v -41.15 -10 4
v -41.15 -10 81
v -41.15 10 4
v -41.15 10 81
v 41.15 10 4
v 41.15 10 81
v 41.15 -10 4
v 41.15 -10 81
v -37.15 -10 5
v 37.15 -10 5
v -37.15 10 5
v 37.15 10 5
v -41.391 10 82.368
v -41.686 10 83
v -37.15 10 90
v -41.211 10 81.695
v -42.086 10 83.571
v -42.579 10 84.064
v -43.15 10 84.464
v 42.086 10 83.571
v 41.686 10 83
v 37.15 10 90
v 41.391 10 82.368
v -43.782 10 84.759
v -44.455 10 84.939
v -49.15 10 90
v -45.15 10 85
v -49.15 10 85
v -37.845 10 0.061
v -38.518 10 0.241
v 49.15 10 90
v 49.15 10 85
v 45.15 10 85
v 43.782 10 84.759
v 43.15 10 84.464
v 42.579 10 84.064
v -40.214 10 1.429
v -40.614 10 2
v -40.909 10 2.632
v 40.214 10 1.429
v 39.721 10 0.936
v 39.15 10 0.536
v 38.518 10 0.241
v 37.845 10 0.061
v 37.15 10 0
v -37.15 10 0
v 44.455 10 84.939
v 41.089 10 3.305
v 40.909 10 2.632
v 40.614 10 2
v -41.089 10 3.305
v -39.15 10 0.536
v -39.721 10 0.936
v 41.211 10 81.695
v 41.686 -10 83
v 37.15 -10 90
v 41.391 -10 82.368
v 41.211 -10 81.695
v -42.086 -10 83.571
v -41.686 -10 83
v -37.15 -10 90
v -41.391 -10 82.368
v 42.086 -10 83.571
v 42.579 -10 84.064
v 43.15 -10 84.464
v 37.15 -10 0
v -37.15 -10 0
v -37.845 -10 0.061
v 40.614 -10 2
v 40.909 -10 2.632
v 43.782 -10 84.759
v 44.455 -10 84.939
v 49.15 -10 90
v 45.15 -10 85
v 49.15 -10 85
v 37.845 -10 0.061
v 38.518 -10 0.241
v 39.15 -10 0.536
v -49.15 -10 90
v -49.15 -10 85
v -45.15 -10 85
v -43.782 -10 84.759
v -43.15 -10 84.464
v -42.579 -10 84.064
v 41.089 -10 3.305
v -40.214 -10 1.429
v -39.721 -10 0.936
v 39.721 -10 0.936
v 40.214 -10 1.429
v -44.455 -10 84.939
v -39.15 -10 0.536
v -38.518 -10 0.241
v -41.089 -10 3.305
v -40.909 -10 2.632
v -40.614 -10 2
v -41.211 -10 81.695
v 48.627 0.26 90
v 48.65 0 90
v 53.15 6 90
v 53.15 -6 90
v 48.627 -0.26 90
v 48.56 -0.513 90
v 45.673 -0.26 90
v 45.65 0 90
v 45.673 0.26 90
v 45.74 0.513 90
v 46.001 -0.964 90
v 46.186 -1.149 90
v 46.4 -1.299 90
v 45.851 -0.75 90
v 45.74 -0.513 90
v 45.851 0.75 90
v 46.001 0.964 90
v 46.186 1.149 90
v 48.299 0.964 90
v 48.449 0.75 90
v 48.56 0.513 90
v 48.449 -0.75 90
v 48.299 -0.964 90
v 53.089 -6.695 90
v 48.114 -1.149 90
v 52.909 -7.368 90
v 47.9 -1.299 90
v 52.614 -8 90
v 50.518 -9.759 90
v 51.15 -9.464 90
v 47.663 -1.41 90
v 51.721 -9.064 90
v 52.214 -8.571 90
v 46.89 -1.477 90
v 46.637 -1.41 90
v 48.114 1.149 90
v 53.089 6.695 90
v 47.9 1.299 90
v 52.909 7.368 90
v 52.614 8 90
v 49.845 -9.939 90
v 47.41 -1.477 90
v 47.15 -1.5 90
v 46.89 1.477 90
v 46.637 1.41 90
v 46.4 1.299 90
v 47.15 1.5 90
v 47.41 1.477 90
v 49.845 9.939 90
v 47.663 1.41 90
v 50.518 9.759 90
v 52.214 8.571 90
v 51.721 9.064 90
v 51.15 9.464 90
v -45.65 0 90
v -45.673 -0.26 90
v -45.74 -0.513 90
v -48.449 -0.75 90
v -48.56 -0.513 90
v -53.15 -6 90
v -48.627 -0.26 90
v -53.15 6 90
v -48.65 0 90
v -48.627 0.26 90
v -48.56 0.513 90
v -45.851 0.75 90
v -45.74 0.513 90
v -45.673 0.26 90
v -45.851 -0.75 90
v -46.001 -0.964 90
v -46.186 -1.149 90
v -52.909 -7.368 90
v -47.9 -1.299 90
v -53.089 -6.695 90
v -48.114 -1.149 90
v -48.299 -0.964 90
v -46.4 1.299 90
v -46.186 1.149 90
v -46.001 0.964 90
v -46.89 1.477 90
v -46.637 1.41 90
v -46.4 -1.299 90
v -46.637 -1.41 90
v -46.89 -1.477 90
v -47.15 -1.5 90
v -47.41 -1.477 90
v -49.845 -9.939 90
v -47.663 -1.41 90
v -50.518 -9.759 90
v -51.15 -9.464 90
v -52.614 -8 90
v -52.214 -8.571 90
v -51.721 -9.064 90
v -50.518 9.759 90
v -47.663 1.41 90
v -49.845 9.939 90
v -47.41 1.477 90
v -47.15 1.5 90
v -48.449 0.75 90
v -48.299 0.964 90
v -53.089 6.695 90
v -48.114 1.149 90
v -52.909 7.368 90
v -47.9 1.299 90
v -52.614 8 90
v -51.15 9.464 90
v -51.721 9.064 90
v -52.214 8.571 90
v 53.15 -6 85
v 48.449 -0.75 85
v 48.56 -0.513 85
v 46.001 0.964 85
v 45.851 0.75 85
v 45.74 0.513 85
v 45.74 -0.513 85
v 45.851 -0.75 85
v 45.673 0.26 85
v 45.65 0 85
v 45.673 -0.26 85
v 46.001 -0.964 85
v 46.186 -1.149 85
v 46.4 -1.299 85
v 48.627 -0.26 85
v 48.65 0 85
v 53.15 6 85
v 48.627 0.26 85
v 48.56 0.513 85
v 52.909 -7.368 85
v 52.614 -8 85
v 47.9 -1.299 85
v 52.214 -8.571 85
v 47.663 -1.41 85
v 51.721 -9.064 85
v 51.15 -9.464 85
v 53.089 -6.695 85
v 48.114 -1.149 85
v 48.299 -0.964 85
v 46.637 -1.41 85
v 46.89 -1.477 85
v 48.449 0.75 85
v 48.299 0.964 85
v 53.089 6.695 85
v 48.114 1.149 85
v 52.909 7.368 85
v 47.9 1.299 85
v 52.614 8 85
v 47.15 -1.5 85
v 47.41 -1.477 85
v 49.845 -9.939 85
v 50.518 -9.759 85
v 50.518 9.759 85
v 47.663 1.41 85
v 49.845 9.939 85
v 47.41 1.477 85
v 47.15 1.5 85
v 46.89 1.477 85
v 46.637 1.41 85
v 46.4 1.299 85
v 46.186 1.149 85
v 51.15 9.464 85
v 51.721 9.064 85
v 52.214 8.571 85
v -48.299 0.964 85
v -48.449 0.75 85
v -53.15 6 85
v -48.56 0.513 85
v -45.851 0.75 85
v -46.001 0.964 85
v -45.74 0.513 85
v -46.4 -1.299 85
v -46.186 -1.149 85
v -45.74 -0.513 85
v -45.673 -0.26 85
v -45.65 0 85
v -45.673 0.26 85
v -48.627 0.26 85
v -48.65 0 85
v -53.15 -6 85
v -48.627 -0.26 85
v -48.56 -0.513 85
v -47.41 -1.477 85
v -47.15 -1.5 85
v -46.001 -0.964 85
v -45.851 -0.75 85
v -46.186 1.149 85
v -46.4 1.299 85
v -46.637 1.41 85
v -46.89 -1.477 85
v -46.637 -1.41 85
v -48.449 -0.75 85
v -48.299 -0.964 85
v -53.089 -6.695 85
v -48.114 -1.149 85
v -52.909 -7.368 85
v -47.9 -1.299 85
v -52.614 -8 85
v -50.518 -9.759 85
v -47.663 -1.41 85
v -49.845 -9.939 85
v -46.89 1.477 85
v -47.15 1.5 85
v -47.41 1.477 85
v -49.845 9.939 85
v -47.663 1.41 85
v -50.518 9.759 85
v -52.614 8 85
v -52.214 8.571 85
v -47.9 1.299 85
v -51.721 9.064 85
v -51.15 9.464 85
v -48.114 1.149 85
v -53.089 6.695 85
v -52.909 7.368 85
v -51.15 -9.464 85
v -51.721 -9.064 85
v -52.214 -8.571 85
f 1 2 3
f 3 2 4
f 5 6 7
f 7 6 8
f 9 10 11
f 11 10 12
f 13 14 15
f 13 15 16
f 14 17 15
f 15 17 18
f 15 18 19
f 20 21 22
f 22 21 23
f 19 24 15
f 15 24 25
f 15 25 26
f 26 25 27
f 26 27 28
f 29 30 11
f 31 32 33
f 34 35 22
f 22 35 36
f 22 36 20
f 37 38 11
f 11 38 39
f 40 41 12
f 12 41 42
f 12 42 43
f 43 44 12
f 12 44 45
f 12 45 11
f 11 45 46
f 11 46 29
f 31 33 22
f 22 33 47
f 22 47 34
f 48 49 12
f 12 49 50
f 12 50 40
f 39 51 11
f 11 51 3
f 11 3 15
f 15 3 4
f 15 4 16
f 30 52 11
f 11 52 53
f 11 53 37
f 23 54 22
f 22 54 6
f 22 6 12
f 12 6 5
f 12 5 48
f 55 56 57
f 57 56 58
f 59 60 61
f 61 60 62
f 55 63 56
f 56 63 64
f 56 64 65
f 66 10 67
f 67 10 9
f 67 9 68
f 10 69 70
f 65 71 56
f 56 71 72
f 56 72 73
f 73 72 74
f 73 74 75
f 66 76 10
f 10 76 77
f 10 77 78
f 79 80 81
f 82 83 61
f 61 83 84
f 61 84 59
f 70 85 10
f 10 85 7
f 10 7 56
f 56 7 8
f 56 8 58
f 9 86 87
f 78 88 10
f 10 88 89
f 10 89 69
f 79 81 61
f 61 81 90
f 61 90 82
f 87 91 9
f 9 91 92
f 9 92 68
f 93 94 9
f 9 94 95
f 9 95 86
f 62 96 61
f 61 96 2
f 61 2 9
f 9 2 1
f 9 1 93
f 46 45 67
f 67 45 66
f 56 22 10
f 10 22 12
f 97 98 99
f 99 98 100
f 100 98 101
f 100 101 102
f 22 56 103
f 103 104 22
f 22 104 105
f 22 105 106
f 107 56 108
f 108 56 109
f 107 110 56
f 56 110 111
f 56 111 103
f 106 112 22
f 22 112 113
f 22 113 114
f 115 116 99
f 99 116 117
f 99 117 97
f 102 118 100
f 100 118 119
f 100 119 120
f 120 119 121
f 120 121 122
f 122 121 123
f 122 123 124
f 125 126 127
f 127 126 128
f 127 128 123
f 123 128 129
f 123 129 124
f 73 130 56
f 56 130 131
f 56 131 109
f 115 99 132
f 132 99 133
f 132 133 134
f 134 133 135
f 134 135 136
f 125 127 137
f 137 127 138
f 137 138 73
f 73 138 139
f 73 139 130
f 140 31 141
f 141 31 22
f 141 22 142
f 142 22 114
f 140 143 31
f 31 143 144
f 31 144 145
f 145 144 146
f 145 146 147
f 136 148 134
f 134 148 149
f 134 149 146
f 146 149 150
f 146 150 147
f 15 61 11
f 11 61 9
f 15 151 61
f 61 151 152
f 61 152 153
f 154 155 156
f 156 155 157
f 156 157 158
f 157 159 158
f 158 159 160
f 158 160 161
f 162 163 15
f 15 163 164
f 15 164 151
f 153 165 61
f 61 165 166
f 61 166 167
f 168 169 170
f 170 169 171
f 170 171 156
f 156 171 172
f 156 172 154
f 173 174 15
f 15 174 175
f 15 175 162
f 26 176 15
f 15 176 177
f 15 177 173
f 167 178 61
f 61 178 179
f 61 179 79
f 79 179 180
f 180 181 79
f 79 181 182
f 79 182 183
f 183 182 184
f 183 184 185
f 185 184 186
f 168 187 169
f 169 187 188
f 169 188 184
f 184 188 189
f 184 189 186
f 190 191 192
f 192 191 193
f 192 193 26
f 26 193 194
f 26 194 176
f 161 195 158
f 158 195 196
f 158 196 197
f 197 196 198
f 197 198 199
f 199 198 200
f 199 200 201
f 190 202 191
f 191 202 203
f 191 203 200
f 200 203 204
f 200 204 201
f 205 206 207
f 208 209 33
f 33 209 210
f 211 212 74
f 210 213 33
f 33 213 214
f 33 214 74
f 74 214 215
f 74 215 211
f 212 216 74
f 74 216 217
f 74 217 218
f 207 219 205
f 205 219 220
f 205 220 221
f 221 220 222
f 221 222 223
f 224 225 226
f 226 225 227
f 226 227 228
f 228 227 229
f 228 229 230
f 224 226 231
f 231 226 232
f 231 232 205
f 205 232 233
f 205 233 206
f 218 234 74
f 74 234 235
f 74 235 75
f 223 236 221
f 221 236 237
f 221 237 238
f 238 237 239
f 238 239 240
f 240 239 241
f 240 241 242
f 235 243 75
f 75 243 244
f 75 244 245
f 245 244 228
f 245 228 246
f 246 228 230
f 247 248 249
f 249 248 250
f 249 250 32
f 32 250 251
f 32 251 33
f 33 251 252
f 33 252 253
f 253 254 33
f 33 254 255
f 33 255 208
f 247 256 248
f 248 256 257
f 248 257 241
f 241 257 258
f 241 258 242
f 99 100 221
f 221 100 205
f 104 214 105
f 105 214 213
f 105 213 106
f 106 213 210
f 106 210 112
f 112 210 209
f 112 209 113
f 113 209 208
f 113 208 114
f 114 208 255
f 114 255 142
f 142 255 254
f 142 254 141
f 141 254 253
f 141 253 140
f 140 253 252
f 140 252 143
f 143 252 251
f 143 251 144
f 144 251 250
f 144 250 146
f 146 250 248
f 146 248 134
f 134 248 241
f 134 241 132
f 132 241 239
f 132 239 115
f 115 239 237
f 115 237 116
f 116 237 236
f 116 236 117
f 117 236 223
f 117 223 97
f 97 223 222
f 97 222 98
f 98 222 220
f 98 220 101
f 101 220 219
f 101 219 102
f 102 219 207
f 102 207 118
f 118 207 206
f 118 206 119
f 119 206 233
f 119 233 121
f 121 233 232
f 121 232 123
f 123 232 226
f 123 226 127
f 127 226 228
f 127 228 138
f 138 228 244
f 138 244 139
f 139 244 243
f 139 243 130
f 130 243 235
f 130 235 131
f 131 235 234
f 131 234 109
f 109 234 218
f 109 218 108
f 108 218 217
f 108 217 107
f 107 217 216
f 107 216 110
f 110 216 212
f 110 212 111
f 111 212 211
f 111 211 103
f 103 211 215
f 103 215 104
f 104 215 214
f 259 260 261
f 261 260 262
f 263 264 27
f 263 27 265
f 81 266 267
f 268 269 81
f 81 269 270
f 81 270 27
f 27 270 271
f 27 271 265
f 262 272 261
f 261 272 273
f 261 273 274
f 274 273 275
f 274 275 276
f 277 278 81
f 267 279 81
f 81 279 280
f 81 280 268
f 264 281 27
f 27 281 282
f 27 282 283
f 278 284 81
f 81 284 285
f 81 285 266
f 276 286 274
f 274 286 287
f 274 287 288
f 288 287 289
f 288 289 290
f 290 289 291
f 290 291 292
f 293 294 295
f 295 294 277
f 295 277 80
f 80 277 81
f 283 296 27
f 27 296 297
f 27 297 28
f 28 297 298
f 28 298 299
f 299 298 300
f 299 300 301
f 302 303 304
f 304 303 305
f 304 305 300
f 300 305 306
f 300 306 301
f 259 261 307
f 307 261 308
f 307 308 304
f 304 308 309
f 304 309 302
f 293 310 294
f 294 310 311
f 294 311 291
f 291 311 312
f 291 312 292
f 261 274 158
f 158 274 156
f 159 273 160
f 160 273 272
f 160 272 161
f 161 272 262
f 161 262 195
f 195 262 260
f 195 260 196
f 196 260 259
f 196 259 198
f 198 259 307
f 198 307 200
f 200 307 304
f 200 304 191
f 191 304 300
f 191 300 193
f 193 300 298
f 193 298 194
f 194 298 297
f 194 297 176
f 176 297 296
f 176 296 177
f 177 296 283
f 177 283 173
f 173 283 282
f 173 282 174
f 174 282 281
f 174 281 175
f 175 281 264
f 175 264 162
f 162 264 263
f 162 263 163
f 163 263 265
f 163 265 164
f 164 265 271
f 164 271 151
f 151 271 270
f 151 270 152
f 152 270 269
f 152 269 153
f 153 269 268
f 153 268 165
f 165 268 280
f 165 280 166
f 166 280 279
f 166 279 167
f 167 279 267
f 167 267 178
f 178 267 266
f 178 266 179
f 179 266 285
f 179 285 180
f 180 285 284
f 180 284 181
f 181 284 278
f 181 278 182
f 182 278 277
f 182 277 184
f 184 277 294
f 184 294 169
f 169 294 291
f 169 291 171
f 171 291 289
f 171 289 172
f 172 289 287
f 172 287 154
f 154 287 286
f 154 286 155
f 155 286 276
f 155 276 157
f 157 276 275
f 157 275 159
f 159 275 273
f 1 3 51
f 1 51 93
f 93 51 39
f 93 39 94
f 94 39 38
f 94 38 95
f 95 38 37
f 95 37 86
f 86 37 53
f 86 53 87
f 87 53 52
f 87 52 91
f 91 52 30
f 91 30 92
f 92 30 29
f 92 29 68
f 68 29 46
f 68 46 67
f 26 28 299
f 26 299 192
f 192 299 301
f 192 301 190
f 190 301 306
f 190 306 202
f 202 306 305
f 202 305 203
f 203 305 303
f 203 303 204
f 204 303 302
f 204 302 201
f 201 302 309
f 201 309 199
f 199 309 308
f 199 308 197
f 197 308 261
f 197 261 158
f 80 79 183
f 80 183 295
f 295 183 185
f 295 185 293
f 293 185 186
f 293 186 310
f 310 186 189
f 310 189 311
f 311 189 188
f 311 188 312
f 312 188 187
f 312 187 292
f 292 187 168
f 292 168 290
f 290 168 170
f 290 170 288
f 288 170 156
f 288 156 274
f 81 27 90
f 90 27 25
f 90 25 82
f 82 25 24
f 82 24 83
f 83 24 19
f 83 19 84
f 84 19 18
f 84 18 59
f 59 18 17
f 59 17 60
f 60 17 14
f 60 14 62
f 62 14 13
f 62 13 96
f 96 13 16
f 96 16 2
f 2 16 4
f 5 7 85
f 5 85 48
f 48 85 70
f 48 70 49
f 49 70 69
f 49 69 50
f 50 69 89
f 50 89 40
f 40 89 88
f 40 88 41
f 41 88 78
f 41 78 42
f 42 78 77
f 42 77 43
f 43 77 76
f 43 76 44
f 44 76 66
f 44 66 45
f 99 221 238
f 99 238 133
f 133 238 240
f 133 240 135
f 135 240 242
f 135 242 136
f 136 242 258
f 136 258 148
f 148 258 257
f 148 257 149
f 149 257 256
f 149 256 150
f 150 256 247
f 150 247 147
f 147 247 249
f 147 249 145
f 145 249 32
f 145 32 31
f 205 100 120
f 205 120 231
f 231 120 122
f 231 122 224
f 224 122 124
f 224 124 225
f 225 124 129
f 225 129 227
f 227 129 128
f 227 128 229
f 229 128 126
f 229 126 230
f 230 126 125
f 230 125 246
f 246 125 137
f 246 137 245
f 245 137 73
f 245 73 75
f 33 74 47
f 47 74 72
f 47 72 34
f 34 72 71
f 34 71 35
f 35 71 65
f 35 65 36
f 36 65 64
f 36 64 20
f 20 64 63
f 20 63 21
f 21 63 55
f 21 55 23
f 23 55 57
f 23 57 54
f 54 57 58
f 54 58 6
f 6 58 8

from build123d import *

# Parameters (mm, degrees)
SCHIZZO1_W                     = 74.3
SCHIZZO1_H                     = 20
ESTRUSIONE_ESTRUSIONE1_DEPTH   = 5
SCHIZZO2_W                     = 4
SCHIZZO2_H                     = 20
ESTRUSIONE_ESTRUSIONE2_DEPTH   = 85
ESTRUSIONE_ESTRUSIONE2_2_DEPTH = 85
SCHIZZO3_W                     = 4
SCHIZZO3_H                     = 20
ESTRUSIONE_ESTRUSIONE3_DEPTH   = 5
SCHIZZO4_W                     = 5
SCHIZZO4_H                     = 20
ESTRUSIONE_ESTRUSIONE4_DEPTH   = 12
SCHIZZO5_R                     = 1.5
TAGLIO_ESTRUSIONE1_DEPTH       = 101.746823771
SCHIZZO6_W                     = 5
SCHIZZO6_H                     = 20
ESTRUSIONE_ESTRUSIONE5_DEPTH   = 12
RACCORDO1_R                    = 4


with BuildPart() as part:
    # Schizzo1 → Estrusione-Estrusione1 (new body)
    with BuildSketch(Plane.XY):
        Rectangle(SCHIZZO1_W, SCHIZZO1_H)
    extrude(amount=ESTRUSIONE_ESTRUSIONE1_DEPTH)



with BuildPart() as body_2:
    # Schizzo2 → Estrusione-Estrusione2 (new body)
    with BuildSketch(Plane.XY.offset(5)):
        with Locations((-39.15, 0)):
            Rectangle(SCHIZZO2_W, SCHIZZO2_H)
    extrude(amount=ESTRUSIONE_ESTRUSIONE2_DEPTH)


with BuildPart() as body_3:
    # Schizzo2 → Estrusione-Estrusione2 2 (new body)
    with BuildSketch(Plane.XY.offset(5)):
        with Locations((39.15, 0)):
            Rectangle(SCHIZZO2_W, SCHIZZO2_H)
    extrude(amount=ESTRUSIONE_ESTRUSIONE2_2_DEPTH)


with BuildPart() as part_1:
    add(part.part)

    add(body_2.part)  # Estrusione-Estrusione3 merges body 2

    add(body_3.part)  # Estrusione-Estrusione3 merges body 3
    # Schizzo3 → Estrusione-Estrusione3 (add)
    with BuildSketch(Plane(origin=(0, 0, 5), x_dir=(-1, 0, 0), z_dir=(0, 0, -1))):
        with Locations((-39.15, 0)):
            Rectangle(SCHIZZO3_W, SCHIZZO3_H)
        with Locations((39.15, 0)):
            Rectangle(SCHIZZO3_W, SCHIZZO3_H)
    extrude(amount=ESTRUSIONE_ESTRUSIONE3_DEPTH)

    # Schizzo4 → Estrusione-Estrusione4 (add)
    with BuildSketch(Plane(origin=(41.15, 0, 0), x_dir=(0, 0, -1), z_dir=(1, 0, 0))):
        with Locations((-87.5, 0)):
            Rectangle(SCHIZZO4_W, SCHIZZO4_H)
    extrude(amount=ESTRUSIONE_ESTRUSIONE4_DEPTH)

    # Schizzo5 → Taglio-Estrusione1 (cut, through all)
    with BuildSketch(Plane(origin=(0, 0, 85), x_dir=(-1, 0, 0), z_dir=(0, 0, -1))):
        with Locations((-47.15, 0)):
            Circle(SCHIZZO5_R)
    taglio_estrusione1 = extrude(amount=-TAGLIO_ESTRUSIONE1_DEPTH, mode=Mode.SUBTRACT)

    # Schizzo6 → Estrusione-Estrusione5 (add)
    with BuildSketch(Plane.ZY.offset(41.15)):
        with Locations((87.5, 0)):
            Rectangle(SCHIZZO6_W, SCHIZZO6_H)
    extrude(amount=ESTRUSIONE_ESTRUSIONE5_DEPTH)

    # Specchia13: Taglio-Estrusione1 across plane
    add(taglio_estrusione1.mirror(Plane(origin=(0, 0, 0), x_dir=(0, 0, 1), z_dir=(1, 0, 0))), mode=Mode.SUBTRACT)

    # Raccordo1
    raccordo1_edges = [part_1.edges().sort_by_distance(p)[0] for p in [
        (-41.15, 0, 85),
        (-53.15, 10, 87.5),
        (-53.15, -10, 87.5),
        (41.15, 0, 0),
        (-41.15, 0, 0),
        (41.15, 0, 85),
        (53.15, -10, 87.5),
        (53.15, 10, 87.5),
    ]]
    fillet(raccordo1_edges, radius=RACCORDO1_R)


solid = part_1.part
